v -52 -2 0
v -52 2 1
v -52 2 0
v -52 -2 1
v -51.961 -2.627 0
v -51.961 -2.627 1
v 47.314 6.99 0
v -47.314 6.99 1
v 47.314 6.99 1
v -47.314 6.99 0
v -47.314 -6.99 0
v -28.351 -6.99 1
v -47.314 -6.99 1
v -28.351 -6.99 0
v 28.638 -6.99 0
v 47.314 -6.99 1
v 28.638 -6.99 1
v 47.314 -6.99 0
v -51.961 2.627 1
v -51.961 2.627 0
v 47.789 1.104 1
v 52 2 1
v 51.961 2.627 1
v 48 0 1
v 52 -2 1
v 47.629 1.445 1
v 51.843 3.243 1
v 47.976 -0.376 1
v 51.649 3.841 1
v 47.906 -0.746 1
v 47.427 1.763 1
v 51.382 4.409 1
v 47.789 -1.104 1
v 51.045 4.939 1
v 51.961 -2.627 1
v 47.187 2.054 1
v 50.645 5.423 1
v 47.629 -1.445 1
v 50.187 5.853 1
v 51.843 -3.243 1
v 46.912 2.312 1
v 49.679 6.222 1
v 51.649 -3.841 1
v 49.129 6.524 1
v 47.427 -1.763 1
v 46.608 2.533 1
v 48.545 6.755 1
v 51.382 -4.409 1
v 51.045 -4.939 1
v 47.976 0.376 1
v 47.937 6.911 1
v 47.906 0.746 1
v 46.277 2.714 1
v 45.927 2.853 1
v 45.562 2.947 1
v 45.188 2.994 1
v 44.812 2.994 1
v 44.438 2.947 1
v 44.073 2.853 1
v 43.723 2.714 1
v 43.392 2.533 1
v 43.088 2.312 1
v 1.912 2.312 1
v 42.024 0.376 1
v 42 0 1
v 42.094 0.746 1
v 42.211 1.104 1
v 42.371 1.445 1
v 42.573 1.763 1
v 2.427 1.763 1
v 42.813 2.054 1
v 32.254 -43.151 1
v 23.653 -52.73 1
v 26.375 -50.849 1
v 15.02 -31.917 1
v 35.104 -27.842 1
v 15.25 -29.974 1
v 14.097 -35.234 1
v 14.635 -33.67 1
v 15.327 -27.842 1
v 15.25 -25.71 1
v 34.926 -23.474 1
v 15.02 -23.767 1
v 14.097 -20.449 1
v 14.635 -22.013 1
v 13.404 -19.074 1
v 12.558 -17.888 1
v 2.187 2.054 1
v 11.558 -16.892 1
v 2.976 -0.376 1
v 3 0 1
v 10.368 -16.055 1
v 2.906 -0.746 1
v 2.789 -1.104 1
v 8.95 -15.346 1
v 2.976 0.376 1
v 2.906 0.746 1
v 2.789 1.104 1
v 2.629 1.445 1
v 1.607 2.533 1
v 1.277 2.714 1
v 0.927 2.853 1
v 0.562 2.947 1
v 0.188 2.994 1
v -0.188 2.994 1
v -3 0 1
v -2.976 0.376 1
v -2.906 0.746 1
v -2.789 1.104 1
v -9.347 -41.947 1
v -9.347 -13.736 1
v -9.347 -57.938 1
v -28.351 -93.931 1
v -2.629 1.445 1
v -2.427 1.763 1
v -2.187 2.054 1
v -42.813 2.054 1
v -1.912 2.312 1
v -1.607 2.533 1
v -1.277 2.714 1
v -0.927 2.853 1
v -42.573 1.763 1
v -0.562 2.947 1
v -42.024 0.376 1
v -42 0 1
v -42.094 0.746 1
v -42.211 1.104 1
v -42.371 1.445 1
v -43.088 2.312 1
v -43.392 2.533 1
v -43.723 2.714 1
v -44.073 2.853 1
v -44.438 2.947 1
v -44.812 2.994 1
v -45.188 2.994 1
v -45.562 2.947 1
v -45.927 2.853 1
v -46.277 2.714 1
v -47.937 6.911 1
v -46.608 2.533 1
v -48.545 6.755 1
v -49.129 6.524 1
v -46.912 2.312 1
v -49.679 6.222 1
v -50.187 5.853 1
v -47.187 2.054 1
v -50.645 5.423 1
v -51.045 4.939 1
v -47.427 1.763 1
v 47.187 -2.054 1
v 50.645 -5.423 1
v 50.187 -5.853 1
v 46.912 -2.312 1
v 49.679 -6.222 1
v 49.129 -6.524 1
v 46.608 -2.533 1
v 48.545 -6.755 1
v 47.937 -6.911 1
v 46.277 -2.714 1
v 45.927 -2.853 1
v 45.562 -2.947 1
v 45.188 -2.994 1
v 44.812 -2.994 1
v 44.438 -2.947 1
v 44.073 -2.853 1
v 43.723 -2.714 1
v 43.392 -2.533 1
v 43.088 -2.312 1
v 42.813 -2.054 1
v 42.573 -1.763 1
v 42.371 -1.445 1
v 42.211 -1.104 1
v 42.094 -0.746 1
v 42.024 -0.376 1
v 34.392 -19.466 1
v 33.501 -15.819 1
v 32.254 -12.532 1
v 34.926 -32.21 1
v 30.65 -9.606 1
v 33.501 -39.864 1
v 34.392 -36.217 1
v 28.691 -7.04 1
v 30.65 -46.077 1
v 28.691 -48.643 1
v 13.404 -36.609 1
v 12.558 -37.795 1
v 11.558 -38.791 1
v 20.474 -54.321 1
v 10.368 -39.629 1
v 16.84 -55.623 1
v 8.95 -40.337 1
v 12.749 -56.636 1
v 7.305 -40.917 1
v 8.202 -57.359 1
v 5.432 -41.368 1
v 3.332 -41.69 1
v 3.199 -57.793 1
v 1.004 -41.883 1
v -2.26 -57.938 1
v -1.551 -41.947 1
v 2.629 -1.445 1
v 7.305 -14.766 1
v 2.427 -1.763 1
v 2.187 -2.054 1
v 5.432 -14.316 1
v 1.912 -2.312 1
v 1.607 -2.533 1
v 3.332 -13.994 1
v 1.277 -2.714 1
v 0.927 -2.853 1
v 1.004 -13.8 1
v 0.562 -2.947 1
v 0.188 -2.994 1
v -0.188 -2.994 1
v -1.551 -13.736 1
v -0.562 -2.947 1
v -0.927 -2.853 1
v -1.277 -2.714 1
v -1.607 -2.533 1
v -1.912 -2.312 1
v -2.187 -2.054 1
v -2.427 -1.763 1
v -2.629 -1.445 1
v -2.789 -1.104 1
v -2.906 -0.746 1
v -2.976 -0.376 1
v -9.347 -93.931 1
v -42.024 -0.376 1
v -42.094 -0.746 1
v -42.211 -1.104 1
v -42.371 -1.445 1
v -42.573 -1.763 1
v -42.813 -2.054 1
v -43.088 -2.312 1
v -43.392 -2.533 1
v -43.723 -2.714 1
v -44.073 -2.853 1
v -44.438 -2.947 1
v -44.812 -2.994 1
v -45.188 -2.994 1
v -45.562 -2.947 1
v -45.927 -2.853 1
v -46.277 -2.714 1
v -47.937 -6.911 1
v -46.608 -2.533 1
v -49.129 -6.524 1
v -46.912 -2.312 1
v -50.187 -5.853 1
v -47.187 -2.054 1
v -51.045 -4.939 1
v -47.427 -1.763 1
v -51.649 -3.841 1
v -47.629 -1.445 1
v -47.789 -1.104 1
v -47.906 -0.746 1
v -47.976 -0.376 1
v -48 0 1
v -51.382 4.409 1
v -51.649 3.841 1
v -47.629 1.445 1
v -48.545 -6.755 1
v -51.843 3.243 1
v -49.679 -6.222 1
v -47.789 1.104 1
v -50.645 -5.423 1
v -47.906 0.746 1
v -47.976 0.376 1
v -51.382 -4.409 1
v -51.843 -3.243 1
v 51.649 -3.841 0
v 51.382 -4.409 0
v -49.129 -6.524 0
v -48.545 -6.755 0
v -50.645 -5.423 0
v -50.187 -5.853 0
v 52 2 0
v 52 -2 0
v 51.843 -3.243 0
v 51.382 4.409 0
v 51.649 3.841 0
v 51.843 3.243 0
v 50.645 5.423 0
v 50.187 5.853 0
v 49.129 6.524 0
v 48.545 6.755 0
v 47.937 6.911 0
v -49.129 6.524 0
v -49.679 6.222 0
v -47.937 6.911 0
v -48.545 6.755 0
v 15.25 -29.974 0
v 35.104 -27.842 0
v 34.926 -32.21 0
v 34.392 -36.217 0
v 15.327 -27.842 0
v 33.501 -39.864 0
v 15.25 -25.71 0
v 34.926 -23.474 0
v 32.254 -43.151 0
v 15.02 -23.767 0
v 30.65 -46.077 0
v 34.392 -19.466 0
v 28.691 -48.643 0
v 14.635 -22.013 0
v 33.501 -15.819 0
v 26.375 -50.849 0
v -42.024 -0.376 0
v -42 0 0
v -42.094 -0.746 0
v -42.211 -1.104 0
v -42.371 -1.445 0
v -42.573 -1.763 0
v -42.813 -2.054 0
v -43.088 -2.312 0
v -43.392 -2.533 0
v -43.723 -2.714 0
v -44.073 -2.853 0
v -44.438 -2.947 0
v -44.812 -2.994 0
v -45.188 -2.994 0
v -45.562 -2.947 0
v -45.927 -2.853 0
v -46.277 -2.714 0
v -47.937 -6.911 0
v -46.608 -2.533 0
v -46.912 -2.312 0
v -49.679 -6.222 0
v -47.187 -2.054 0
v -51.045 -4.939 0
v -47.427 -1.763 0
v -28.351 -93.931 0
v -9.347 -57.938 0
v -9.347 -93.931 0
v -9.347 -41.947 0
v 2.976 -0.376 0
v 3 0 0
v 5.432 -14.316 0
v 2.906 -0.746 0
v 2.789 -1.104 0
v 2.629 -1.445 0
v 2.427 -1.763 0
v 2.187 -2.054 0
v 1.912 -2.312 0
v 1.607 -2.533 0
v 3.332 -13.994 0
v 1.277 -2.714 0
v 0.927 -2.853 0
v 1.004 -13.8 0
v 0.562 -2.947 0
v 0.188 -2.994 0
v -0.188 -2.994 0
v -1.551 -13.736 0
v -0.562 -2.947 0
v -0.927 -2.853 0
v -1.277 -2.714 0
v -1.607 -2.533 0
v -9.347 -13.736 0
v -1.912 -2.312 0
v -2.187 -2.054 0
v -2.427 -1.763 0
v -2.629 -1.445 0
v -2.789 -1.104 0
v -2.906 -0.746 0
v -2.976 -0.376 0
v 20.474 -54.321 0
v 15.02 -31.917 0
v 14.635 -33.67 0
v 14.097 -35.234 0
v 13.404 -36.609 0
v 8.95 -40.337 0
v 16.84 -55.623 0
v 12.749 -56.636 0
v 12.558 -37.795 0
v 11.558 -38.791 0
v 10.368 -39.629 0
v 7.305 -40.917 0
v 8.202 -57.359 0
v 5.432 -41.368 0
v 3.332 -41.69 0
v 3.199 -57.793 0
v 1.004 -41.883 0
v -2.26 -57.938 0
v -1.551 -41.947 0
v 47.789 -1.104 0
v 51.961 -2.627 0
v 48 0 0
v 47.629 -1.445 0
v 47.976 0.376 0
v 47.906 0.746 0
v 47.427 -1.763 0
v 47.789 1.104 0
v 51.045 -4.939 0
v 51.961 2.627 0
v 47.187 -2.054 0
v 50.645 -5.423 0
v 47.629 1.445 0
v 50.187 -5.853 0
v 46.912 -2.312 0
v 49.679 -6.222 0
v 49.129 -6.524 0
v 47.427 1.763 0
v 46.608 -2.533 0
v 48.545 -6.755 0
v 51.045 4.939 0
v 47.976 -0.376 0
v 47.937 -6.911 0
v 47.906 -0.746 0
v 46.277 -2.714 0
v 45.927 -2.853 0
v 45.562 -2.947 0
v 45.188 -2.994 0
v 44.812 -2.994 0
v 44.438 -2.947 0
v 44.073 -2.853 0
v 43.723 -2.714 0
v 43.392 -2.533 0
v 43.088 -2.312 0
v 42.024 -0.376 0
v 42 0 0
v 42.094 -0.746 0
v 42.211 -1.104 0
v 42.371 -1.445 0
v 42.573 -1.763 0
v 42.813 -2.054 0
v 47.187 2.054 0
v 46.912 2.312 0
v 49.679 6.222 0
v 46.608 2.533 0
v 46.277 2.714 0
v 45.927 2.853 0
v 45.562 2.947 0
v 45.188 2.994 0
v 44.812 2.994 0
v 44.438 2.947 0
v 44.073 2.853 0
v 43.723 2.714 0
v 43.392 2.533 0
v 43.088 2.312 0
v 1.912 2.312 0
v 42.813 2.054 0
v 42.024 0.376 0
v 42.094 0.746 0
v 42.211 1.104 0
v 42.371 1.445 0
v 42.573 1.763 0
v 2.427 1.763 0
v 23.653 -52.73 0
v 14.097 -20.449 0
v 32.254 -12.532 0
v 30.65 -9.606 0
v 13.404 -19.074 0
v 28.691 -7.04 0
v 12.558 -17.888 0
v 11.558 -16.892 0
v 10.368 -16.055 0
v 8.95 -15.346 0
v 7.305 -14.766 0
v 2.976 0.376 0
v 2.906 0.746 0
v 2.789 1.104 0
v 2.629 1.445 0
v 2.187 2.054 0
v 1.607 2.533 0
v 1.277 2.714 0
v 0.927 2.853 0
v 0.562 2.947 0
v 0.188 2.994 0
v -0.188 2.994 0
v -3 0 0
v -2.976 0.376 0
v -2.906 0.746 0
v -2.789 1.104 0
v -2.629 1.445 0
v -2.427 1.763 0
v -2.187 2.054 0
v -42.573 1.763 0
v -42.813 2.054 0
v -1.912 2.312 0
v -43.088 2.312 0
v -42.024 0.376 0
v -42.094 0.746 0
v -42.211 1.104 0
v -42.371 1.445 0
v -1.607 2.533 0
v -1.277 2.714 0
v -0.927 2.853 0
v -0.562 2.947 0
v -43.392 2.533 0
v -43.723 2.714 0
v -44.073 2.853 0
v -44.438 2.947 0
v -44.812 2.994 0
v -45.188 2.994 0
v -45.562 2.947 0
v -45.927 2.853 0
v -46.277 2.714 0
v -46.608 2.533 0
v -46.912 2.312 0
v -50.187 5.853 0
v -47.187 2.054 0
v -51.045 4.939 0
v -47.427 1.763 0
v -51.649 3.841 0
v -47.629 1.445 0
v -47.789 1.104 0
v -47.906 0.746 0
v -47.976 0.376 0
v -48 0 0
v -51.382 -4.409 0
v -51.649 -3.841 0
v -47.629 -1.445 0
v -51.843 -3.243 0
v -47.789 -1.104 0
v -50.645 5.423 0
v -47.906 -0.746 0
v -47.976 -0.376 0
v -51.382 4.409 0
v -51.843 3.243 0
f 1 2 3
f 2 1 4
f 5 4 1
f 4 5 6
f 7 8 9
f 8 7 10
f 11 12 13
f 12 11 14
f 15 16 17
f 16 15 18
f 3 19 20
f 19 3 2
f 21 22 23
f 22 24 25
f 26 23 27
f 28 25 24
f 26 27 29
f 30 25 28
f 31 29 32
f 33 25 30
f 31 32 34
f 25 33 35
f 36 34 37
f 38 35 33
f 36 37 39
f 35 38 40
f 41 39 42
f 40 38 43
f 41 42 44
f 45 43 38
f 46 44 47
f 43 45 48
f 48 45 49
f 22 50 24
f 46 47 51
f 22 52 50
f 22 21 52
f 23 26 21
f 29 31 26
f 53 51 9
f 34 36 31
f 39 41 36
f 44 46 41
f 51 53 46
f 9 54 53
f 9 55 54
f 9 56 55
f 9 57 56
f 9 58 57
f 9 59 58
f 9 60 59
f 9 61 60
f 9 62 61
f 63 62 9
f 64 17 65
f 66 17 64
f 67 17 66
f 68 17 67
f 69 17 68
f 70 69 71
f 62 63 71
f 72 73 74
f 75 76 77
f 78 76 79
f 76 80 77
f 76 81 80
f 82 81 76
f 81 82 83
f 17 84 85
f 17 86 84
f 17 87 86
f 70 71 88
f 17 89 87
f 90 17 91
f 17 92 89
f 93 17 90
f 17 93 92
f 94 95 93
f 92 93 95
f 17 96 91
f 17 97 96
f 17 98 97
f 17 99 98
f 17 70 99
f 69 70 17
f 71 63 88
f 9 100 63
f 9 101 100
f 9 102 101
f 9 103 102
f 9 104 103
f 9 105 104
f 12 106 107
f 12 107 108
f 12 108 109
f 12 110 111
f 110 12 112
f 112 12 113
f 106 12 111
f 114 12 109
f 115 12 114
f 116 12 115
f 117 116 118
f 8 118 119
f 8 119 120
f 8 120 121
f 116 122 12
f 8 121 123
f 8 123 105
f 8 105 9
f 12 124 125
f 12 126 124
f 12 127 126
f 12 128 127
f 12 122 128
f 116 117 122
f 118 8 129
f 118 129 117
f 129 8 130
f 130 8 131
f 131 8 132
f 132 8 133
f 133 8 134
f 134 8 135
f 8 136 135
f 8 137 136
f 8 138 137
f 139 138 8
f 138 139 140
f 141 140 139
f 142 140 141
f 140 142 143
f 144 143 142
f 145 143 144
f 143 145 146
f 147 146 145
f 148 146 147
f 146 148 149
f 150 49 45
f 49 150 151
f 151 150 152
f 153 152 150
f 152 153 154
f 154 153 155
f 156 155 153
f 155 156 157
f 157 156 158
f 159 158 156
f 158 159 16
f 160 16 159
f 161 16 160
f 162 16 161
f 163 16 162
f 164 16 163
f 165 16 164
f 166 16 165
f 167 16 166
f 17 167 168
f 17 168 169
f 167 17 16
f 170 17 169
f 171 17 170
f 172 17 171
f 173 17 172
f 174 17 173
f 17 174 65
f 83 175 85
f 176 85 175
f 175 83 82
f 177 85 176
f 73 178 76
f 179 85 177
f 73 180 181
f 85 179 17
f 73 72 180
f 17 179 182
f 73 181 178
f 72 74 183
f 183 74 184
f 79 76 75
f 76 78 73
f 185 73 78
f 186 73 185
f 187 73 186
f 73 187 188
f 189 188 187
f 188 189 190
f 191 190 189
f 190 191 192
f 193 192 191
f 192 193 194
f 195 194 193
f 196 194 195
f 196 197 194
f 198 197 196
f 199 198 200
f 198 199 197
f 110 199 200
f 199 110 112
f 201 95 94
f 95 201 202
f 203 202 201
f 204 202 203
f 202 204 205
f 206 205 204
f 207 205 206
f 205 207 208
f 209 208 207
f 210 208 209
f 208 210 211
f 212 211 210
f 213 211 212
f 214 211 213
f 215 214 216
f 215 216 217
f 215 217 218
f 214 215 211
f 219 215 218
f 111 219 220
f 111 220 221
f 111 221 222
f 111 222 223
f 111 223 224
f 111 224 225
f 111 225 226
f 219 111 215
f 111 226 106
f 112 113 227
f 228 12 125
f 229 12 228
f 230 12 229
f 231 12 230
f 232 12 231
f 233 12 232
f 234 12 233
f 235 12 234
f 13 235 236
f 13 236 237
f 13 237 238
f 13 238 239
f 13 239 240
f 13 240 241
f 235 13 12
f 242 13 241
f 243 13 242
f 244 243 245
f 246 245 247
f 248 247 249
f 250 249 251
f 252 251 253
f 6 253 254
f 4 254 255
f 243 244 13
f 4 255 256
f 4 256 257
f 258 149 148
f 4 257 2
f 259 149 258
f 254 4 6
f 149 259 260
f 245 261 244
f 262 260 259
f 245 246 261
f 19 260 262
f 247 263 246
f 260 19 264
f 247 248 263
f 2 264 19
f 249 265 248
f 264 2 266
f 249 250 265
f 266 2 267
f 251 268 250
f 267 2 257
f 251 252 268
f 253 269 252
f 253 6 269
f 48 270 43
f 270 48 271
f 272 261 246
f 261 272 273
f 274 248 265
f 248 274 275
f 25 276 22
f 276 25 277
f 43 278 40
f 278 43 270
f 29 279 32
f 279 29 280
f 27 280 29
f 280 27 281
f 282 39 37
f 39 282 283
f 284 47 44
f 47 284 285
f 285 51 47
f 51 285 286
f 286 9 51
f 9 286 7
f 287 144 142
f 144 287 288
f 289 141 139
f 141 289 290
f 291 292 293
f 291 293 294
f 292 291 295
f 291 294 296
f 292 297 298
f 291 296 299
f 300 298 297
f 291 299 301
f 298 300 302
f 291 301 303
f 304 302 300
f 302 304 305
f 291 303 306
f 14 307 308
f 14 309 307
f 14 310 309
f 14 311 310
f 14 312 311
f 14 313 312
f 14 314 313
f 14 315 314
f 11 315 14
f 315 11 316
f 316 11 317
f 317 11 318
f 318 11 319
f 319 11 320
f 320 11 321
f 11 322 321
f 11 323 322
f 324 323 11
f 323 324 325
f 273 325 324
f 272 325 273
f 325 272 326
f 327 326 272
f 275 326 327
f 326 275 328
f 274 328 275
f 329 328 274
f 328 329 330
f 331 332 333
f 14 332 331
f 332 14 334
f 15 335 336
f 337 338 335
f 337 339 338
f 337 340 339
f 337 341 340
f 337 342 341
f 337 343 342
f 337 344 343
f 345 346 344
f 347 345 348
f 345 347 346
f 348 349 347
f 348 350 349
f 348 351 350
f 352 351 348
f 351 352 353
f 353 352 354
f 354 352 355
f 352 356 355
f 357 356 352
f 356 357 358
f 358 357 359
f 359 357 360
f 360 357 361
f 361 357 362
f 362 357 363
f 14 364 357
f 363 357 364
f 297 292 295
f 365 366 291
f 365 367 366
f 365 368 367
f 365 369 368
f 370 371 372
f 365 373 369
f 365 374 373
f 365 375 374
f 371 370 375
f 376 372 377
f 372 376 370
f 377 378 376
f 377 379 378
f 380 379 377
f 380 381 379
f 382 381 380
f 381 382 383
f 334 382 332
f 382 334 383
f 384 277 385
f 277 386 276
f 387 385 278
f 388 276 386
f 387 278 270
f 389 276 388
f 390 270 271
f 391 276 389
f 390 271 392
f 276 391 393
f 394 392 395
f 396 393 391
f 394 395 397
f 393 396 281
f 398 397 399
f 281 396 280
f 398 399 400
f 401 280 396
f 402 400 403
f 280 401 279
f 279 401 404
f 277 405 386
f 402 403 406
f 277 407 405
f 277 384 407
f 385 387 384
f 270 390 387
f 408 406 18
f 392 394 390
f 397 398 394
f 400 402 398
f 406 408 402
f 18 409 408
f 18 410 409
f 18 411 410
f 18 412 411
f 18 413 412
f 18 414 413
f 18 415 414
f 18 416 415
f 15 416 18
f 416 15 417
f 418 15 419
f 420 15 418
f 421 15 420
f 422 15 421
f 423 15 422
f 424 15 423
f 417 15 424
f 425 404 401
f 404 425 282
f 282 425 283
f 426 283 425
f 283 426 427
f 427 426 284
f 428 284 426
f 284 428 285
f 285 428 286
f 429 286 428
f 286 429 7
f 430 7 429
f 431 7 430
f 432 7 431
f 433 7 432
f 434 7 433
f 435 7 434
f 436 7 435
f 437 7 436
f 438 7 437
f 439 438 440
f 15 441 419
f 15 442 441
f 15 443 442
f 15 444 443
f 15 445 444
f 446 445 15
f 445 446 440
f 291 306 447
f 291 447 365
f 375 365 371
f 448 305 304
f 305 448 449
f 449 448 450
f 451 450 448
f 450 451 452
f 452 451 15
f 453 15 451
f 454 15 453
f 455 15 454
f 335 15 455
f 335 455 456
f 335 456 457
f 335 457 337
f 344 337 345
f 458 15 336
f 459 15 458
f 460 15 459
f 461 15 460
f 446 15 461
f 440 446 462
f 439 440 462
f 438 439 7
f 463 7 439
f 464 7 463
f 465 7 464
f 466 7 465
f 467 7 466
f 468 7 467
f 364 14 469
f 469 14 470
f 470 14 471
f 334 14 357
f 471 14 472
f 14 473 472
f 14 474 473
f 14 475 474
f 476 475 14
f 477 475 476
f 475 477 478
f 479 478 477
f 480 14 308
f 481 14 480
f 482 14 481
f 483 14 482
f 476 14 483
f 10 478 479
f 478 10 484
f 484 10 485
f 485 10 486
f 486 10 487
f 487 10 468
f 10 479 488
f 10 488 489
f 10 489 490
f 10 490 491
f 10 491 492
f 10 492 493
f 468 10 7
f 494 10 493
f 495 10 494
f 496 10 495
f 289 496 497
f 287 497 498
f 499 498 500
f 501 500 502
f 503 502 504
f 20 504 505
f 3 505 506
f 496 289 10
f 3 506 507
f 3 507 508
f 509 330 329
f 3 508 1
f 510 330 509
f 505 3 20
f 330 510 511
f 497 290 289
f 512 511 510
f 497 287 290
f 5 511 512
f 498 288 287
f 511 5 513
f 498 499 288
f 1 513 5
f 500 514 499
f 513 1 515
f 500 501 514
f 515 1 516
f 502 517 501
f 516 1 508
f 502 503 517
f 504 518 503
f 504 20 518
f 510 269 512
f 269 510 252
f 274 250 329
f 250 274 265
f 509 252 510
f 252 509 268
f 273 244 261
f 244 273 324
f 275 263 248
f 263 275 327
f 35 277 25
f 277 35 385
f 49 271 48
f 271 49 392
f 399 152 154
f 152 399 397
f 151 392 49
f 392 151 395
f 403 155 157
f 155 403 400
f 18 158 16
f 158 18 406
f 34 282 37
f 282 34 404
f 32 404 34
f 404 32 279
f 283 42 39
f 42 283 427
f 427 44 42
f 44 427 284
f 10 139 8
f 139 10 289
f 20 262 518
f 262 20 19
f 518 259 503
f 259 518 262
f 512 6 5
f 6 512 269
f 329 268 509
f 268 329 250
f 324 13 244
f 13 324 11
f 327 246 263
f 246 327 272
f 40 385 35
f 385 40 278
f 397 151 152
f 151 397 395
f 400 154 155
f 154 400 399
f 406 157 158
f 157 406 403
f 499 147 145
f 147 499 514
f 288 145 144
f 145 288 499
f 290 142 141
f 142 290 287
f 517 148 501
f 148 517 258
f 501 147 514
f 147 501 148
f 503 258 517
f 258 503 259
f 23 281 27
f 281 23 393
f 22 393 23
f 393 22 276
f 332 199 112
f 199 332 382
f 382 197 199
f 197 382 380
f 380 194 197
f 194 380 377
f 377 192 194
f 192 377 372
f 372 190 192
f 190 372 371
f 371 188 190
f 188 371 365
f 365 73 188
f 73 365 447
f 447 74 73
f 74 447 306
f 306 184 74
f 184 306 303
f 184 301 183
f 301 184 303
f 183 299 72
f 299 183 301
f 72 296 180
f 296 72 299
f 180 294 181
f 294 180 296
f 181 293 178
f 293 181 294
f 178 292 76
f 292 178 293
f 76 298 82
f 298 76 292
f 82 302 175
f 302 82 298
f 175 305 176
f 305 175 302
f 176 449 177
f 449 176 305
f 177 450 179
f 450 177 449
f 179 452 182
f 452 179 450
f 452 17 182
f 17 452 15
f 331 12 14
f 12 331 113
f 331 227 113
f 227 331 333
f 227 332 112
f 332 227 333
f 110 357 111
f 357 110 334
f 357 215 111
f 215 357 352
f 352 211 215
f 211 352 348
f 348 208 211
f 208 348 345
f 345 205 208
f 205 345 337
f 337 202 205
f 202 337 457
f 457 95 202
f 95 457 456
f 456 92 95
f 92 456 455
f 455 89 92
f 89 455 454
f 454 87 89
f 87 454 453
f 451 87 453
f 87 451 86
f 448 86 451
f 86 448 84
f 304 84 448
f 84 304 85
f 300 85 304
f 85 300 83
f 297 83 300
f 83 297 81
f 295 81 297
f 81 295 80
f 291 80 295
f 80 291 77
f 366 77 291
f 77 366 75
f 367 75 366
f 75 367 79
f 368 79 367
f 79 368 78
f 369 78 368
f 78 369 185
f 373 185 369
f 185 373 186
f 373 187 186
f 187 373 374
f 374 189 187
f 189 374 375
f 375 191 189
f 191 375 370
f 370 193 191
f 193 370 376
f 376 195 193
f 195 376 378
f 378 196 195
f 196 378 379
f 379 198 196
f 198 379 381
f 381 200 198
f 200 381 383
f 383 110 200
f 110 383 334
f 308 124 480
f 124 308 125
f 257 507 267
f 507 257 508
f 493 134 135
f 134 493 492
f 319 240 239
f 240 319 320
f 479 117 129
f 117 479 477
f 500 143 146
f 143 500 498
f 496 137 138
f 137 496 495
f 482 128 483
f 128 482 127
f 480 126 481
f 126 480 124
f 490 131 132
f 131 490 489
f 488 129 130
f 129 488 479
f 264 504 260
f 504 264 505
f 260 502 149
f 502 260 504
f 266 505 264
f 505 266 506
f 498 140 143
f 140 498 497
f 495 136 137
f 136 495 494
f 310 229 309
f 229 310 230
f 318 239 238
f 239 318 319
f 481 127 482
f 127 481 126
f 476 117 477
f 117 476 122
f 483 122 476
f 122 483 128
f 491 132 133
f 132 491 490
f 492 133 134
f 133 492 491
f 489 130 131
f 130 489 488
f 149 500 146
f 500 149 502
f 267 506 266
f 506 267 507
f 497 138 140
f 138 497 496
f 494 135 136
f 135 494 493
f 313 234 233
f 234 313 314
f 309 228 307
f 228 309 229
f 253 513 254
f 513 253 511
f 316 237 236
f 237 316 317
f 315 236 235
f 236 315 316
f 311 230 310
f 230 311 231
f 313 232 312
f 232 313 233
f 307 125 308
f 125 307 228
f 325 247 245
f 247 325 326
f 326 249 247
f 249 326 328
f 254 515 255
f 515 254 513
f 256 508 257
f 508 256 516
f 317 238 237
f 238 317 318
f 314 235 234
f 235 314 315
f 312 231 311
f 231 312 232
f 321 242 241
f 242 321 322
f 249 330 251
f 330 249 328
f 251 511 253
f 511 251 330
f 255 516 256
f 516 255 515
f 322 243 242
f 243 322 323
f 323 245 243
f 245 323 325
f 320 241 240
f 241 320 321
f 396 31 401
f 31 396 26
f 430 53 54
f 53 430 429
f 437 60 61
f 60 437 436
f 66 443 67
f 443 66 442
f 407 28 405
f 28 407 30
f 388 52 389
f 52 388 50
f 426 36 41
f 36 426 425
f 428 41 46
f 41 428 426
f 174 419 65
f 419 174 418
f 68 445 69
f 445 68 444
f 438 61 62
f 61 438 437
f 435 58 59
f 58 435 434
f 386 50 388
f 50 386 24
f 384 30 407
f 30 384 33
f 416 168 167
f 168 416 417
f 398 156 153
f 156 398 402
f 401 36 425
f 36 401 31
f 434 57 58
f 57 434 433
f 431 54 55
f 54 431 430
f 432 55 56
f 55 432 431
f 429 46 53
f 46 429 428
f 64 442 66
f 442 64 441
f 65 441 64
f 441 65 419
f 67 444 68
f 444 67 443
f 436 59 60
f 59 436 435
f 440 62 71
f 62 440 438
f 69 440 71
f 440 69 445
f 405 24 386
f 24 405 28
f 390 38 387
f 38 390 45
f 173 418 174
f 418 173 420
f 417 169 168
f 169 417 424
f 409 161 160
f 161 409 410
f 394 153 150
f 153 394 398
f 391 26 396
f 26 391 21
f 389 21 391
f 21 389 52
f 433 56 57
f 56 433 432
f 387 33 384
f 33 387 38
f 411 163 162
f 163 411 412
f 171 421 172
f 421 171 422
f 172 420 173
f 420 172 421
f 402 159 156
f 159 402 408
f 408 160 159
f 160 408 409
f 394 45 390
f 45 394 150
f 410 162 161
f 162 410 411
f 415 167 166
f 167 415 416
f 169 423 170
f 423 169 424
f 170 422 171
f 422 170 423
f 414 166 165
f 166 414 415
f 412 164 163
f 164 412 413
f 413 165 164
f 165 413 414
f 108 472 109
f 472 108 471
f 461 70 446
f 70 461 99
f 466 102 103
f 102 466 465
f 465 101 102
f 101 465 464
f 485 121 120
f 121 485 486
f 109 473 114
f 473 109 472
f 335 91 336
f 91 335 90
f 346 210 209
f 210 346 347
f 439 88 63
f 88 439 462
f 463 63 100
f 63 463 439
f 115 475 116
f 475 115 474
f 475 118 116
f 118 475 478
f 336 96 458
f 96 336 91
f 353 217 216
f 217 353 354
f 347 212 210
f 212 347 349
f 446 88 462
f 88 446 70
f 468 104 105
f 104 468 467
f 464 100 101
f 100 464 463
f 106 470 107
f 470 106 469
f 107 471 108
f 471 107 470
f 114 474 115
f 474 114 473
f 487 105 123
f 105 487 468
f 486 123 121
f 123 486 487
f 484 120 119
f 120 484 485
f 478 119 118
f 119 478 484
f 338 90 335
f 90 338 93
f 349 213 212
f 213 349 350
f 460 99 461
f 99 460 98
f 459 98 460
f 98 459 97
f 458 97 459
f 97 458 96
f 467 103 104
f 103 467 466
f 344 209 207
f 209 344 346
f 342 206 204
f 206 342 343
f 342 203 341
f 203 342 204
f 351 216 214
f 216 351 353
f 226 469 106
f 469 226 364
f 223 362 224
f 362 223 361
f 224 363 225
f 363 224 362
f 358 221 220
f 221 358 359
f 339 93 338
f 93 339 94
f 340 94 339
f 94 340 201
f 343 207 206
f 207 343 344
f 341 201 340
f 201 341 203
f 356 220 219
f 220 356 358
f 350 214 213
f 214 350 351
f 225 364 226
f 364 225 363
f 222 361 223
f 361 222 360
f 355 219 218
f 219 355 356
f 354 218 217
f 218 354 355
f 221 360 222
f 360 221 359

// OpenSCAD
$fn = 50;


difference() {
	union() {
		translate(v = [0, 0, 0]) {
			rotate(a = [0, 0, 0]) {
				hull() {
					translate(v = [-47.0000000000, 2.0000000000, 0]) {
						rotate(a = [0, 0, 0]) {
							translate(v = [0, 0, 0]) {
								rotate(a = [0, 0, 0]) {
									cylinder(h = 1, r = 5);
								}
							}
						}
					}
					translate(v = [47.0000000000, 2.0000000000, 0]) {
						rotate(a = [0, 0, 0]) {
							translate(v = [0, 0, 0]) {
								rotate(a = [0, 0, 0]) {
									cylinder(h = 1, r = 5);
								}
							}
						}
					}
					translate(v = [-47.0000000000, -2.0000000000, 0]) {
						rotate(a = [0, 0, 0]) {
							translate(v = [0, 0, 0]) {
								rotate(a = [0, 0, 0]) {
									cylinder(h = 1, r = 5);
								}
							}
						}
					}
					translate(v = [47.0000000000, -2.0000000000, 0]) {
						rotate(a = [0, 0, 0]) {
							translate(v = [0, 0, 0]) {
								rotate(a = [0, 0, 0]) {
									cylinder(h = 1, r = 5);
								}
							}
						}
					}
				}
			}
		}
		translate(v = [0, 0, 0]) {
			rotate(a = [0, 0, 0]) {
				linear_extrude(height = 1) {
					text(font = "DejaVu Sans Mono:style=Bold", halign = "center", size = 95, text = "P", valign = "top");
				}
			}
		}
	}
	union() {
		translate(v = [-45.0000000000, 0.0000000000, -125.0000000000]) {
			rotate(a = [0, 0, 0]) {
				cylinder(h = 250, r = 3.0000000000);
			}
		}
		translate(v = [45.0000000000, 0.0000000000, -125.0000000000]) {
			rotate(a = [0, 0, 0]) {
				cylinder(h = 250, r = 3.0000000000);
			}
		}
		translate(v = [45.0000000000, 0.0000000000, -125.0000000000]) {
			rotate(a = [0, 0, 0]) {
				cylinder(h = 250, r = 3.0000000000);
			}
		}
		translate(v = [0, 0, -125.0000000000]) {
			rotate(a = [0, 0, 0]) {
				cylinder(h = 250, r = 3.0000000000);
			}
		}
	}
}
